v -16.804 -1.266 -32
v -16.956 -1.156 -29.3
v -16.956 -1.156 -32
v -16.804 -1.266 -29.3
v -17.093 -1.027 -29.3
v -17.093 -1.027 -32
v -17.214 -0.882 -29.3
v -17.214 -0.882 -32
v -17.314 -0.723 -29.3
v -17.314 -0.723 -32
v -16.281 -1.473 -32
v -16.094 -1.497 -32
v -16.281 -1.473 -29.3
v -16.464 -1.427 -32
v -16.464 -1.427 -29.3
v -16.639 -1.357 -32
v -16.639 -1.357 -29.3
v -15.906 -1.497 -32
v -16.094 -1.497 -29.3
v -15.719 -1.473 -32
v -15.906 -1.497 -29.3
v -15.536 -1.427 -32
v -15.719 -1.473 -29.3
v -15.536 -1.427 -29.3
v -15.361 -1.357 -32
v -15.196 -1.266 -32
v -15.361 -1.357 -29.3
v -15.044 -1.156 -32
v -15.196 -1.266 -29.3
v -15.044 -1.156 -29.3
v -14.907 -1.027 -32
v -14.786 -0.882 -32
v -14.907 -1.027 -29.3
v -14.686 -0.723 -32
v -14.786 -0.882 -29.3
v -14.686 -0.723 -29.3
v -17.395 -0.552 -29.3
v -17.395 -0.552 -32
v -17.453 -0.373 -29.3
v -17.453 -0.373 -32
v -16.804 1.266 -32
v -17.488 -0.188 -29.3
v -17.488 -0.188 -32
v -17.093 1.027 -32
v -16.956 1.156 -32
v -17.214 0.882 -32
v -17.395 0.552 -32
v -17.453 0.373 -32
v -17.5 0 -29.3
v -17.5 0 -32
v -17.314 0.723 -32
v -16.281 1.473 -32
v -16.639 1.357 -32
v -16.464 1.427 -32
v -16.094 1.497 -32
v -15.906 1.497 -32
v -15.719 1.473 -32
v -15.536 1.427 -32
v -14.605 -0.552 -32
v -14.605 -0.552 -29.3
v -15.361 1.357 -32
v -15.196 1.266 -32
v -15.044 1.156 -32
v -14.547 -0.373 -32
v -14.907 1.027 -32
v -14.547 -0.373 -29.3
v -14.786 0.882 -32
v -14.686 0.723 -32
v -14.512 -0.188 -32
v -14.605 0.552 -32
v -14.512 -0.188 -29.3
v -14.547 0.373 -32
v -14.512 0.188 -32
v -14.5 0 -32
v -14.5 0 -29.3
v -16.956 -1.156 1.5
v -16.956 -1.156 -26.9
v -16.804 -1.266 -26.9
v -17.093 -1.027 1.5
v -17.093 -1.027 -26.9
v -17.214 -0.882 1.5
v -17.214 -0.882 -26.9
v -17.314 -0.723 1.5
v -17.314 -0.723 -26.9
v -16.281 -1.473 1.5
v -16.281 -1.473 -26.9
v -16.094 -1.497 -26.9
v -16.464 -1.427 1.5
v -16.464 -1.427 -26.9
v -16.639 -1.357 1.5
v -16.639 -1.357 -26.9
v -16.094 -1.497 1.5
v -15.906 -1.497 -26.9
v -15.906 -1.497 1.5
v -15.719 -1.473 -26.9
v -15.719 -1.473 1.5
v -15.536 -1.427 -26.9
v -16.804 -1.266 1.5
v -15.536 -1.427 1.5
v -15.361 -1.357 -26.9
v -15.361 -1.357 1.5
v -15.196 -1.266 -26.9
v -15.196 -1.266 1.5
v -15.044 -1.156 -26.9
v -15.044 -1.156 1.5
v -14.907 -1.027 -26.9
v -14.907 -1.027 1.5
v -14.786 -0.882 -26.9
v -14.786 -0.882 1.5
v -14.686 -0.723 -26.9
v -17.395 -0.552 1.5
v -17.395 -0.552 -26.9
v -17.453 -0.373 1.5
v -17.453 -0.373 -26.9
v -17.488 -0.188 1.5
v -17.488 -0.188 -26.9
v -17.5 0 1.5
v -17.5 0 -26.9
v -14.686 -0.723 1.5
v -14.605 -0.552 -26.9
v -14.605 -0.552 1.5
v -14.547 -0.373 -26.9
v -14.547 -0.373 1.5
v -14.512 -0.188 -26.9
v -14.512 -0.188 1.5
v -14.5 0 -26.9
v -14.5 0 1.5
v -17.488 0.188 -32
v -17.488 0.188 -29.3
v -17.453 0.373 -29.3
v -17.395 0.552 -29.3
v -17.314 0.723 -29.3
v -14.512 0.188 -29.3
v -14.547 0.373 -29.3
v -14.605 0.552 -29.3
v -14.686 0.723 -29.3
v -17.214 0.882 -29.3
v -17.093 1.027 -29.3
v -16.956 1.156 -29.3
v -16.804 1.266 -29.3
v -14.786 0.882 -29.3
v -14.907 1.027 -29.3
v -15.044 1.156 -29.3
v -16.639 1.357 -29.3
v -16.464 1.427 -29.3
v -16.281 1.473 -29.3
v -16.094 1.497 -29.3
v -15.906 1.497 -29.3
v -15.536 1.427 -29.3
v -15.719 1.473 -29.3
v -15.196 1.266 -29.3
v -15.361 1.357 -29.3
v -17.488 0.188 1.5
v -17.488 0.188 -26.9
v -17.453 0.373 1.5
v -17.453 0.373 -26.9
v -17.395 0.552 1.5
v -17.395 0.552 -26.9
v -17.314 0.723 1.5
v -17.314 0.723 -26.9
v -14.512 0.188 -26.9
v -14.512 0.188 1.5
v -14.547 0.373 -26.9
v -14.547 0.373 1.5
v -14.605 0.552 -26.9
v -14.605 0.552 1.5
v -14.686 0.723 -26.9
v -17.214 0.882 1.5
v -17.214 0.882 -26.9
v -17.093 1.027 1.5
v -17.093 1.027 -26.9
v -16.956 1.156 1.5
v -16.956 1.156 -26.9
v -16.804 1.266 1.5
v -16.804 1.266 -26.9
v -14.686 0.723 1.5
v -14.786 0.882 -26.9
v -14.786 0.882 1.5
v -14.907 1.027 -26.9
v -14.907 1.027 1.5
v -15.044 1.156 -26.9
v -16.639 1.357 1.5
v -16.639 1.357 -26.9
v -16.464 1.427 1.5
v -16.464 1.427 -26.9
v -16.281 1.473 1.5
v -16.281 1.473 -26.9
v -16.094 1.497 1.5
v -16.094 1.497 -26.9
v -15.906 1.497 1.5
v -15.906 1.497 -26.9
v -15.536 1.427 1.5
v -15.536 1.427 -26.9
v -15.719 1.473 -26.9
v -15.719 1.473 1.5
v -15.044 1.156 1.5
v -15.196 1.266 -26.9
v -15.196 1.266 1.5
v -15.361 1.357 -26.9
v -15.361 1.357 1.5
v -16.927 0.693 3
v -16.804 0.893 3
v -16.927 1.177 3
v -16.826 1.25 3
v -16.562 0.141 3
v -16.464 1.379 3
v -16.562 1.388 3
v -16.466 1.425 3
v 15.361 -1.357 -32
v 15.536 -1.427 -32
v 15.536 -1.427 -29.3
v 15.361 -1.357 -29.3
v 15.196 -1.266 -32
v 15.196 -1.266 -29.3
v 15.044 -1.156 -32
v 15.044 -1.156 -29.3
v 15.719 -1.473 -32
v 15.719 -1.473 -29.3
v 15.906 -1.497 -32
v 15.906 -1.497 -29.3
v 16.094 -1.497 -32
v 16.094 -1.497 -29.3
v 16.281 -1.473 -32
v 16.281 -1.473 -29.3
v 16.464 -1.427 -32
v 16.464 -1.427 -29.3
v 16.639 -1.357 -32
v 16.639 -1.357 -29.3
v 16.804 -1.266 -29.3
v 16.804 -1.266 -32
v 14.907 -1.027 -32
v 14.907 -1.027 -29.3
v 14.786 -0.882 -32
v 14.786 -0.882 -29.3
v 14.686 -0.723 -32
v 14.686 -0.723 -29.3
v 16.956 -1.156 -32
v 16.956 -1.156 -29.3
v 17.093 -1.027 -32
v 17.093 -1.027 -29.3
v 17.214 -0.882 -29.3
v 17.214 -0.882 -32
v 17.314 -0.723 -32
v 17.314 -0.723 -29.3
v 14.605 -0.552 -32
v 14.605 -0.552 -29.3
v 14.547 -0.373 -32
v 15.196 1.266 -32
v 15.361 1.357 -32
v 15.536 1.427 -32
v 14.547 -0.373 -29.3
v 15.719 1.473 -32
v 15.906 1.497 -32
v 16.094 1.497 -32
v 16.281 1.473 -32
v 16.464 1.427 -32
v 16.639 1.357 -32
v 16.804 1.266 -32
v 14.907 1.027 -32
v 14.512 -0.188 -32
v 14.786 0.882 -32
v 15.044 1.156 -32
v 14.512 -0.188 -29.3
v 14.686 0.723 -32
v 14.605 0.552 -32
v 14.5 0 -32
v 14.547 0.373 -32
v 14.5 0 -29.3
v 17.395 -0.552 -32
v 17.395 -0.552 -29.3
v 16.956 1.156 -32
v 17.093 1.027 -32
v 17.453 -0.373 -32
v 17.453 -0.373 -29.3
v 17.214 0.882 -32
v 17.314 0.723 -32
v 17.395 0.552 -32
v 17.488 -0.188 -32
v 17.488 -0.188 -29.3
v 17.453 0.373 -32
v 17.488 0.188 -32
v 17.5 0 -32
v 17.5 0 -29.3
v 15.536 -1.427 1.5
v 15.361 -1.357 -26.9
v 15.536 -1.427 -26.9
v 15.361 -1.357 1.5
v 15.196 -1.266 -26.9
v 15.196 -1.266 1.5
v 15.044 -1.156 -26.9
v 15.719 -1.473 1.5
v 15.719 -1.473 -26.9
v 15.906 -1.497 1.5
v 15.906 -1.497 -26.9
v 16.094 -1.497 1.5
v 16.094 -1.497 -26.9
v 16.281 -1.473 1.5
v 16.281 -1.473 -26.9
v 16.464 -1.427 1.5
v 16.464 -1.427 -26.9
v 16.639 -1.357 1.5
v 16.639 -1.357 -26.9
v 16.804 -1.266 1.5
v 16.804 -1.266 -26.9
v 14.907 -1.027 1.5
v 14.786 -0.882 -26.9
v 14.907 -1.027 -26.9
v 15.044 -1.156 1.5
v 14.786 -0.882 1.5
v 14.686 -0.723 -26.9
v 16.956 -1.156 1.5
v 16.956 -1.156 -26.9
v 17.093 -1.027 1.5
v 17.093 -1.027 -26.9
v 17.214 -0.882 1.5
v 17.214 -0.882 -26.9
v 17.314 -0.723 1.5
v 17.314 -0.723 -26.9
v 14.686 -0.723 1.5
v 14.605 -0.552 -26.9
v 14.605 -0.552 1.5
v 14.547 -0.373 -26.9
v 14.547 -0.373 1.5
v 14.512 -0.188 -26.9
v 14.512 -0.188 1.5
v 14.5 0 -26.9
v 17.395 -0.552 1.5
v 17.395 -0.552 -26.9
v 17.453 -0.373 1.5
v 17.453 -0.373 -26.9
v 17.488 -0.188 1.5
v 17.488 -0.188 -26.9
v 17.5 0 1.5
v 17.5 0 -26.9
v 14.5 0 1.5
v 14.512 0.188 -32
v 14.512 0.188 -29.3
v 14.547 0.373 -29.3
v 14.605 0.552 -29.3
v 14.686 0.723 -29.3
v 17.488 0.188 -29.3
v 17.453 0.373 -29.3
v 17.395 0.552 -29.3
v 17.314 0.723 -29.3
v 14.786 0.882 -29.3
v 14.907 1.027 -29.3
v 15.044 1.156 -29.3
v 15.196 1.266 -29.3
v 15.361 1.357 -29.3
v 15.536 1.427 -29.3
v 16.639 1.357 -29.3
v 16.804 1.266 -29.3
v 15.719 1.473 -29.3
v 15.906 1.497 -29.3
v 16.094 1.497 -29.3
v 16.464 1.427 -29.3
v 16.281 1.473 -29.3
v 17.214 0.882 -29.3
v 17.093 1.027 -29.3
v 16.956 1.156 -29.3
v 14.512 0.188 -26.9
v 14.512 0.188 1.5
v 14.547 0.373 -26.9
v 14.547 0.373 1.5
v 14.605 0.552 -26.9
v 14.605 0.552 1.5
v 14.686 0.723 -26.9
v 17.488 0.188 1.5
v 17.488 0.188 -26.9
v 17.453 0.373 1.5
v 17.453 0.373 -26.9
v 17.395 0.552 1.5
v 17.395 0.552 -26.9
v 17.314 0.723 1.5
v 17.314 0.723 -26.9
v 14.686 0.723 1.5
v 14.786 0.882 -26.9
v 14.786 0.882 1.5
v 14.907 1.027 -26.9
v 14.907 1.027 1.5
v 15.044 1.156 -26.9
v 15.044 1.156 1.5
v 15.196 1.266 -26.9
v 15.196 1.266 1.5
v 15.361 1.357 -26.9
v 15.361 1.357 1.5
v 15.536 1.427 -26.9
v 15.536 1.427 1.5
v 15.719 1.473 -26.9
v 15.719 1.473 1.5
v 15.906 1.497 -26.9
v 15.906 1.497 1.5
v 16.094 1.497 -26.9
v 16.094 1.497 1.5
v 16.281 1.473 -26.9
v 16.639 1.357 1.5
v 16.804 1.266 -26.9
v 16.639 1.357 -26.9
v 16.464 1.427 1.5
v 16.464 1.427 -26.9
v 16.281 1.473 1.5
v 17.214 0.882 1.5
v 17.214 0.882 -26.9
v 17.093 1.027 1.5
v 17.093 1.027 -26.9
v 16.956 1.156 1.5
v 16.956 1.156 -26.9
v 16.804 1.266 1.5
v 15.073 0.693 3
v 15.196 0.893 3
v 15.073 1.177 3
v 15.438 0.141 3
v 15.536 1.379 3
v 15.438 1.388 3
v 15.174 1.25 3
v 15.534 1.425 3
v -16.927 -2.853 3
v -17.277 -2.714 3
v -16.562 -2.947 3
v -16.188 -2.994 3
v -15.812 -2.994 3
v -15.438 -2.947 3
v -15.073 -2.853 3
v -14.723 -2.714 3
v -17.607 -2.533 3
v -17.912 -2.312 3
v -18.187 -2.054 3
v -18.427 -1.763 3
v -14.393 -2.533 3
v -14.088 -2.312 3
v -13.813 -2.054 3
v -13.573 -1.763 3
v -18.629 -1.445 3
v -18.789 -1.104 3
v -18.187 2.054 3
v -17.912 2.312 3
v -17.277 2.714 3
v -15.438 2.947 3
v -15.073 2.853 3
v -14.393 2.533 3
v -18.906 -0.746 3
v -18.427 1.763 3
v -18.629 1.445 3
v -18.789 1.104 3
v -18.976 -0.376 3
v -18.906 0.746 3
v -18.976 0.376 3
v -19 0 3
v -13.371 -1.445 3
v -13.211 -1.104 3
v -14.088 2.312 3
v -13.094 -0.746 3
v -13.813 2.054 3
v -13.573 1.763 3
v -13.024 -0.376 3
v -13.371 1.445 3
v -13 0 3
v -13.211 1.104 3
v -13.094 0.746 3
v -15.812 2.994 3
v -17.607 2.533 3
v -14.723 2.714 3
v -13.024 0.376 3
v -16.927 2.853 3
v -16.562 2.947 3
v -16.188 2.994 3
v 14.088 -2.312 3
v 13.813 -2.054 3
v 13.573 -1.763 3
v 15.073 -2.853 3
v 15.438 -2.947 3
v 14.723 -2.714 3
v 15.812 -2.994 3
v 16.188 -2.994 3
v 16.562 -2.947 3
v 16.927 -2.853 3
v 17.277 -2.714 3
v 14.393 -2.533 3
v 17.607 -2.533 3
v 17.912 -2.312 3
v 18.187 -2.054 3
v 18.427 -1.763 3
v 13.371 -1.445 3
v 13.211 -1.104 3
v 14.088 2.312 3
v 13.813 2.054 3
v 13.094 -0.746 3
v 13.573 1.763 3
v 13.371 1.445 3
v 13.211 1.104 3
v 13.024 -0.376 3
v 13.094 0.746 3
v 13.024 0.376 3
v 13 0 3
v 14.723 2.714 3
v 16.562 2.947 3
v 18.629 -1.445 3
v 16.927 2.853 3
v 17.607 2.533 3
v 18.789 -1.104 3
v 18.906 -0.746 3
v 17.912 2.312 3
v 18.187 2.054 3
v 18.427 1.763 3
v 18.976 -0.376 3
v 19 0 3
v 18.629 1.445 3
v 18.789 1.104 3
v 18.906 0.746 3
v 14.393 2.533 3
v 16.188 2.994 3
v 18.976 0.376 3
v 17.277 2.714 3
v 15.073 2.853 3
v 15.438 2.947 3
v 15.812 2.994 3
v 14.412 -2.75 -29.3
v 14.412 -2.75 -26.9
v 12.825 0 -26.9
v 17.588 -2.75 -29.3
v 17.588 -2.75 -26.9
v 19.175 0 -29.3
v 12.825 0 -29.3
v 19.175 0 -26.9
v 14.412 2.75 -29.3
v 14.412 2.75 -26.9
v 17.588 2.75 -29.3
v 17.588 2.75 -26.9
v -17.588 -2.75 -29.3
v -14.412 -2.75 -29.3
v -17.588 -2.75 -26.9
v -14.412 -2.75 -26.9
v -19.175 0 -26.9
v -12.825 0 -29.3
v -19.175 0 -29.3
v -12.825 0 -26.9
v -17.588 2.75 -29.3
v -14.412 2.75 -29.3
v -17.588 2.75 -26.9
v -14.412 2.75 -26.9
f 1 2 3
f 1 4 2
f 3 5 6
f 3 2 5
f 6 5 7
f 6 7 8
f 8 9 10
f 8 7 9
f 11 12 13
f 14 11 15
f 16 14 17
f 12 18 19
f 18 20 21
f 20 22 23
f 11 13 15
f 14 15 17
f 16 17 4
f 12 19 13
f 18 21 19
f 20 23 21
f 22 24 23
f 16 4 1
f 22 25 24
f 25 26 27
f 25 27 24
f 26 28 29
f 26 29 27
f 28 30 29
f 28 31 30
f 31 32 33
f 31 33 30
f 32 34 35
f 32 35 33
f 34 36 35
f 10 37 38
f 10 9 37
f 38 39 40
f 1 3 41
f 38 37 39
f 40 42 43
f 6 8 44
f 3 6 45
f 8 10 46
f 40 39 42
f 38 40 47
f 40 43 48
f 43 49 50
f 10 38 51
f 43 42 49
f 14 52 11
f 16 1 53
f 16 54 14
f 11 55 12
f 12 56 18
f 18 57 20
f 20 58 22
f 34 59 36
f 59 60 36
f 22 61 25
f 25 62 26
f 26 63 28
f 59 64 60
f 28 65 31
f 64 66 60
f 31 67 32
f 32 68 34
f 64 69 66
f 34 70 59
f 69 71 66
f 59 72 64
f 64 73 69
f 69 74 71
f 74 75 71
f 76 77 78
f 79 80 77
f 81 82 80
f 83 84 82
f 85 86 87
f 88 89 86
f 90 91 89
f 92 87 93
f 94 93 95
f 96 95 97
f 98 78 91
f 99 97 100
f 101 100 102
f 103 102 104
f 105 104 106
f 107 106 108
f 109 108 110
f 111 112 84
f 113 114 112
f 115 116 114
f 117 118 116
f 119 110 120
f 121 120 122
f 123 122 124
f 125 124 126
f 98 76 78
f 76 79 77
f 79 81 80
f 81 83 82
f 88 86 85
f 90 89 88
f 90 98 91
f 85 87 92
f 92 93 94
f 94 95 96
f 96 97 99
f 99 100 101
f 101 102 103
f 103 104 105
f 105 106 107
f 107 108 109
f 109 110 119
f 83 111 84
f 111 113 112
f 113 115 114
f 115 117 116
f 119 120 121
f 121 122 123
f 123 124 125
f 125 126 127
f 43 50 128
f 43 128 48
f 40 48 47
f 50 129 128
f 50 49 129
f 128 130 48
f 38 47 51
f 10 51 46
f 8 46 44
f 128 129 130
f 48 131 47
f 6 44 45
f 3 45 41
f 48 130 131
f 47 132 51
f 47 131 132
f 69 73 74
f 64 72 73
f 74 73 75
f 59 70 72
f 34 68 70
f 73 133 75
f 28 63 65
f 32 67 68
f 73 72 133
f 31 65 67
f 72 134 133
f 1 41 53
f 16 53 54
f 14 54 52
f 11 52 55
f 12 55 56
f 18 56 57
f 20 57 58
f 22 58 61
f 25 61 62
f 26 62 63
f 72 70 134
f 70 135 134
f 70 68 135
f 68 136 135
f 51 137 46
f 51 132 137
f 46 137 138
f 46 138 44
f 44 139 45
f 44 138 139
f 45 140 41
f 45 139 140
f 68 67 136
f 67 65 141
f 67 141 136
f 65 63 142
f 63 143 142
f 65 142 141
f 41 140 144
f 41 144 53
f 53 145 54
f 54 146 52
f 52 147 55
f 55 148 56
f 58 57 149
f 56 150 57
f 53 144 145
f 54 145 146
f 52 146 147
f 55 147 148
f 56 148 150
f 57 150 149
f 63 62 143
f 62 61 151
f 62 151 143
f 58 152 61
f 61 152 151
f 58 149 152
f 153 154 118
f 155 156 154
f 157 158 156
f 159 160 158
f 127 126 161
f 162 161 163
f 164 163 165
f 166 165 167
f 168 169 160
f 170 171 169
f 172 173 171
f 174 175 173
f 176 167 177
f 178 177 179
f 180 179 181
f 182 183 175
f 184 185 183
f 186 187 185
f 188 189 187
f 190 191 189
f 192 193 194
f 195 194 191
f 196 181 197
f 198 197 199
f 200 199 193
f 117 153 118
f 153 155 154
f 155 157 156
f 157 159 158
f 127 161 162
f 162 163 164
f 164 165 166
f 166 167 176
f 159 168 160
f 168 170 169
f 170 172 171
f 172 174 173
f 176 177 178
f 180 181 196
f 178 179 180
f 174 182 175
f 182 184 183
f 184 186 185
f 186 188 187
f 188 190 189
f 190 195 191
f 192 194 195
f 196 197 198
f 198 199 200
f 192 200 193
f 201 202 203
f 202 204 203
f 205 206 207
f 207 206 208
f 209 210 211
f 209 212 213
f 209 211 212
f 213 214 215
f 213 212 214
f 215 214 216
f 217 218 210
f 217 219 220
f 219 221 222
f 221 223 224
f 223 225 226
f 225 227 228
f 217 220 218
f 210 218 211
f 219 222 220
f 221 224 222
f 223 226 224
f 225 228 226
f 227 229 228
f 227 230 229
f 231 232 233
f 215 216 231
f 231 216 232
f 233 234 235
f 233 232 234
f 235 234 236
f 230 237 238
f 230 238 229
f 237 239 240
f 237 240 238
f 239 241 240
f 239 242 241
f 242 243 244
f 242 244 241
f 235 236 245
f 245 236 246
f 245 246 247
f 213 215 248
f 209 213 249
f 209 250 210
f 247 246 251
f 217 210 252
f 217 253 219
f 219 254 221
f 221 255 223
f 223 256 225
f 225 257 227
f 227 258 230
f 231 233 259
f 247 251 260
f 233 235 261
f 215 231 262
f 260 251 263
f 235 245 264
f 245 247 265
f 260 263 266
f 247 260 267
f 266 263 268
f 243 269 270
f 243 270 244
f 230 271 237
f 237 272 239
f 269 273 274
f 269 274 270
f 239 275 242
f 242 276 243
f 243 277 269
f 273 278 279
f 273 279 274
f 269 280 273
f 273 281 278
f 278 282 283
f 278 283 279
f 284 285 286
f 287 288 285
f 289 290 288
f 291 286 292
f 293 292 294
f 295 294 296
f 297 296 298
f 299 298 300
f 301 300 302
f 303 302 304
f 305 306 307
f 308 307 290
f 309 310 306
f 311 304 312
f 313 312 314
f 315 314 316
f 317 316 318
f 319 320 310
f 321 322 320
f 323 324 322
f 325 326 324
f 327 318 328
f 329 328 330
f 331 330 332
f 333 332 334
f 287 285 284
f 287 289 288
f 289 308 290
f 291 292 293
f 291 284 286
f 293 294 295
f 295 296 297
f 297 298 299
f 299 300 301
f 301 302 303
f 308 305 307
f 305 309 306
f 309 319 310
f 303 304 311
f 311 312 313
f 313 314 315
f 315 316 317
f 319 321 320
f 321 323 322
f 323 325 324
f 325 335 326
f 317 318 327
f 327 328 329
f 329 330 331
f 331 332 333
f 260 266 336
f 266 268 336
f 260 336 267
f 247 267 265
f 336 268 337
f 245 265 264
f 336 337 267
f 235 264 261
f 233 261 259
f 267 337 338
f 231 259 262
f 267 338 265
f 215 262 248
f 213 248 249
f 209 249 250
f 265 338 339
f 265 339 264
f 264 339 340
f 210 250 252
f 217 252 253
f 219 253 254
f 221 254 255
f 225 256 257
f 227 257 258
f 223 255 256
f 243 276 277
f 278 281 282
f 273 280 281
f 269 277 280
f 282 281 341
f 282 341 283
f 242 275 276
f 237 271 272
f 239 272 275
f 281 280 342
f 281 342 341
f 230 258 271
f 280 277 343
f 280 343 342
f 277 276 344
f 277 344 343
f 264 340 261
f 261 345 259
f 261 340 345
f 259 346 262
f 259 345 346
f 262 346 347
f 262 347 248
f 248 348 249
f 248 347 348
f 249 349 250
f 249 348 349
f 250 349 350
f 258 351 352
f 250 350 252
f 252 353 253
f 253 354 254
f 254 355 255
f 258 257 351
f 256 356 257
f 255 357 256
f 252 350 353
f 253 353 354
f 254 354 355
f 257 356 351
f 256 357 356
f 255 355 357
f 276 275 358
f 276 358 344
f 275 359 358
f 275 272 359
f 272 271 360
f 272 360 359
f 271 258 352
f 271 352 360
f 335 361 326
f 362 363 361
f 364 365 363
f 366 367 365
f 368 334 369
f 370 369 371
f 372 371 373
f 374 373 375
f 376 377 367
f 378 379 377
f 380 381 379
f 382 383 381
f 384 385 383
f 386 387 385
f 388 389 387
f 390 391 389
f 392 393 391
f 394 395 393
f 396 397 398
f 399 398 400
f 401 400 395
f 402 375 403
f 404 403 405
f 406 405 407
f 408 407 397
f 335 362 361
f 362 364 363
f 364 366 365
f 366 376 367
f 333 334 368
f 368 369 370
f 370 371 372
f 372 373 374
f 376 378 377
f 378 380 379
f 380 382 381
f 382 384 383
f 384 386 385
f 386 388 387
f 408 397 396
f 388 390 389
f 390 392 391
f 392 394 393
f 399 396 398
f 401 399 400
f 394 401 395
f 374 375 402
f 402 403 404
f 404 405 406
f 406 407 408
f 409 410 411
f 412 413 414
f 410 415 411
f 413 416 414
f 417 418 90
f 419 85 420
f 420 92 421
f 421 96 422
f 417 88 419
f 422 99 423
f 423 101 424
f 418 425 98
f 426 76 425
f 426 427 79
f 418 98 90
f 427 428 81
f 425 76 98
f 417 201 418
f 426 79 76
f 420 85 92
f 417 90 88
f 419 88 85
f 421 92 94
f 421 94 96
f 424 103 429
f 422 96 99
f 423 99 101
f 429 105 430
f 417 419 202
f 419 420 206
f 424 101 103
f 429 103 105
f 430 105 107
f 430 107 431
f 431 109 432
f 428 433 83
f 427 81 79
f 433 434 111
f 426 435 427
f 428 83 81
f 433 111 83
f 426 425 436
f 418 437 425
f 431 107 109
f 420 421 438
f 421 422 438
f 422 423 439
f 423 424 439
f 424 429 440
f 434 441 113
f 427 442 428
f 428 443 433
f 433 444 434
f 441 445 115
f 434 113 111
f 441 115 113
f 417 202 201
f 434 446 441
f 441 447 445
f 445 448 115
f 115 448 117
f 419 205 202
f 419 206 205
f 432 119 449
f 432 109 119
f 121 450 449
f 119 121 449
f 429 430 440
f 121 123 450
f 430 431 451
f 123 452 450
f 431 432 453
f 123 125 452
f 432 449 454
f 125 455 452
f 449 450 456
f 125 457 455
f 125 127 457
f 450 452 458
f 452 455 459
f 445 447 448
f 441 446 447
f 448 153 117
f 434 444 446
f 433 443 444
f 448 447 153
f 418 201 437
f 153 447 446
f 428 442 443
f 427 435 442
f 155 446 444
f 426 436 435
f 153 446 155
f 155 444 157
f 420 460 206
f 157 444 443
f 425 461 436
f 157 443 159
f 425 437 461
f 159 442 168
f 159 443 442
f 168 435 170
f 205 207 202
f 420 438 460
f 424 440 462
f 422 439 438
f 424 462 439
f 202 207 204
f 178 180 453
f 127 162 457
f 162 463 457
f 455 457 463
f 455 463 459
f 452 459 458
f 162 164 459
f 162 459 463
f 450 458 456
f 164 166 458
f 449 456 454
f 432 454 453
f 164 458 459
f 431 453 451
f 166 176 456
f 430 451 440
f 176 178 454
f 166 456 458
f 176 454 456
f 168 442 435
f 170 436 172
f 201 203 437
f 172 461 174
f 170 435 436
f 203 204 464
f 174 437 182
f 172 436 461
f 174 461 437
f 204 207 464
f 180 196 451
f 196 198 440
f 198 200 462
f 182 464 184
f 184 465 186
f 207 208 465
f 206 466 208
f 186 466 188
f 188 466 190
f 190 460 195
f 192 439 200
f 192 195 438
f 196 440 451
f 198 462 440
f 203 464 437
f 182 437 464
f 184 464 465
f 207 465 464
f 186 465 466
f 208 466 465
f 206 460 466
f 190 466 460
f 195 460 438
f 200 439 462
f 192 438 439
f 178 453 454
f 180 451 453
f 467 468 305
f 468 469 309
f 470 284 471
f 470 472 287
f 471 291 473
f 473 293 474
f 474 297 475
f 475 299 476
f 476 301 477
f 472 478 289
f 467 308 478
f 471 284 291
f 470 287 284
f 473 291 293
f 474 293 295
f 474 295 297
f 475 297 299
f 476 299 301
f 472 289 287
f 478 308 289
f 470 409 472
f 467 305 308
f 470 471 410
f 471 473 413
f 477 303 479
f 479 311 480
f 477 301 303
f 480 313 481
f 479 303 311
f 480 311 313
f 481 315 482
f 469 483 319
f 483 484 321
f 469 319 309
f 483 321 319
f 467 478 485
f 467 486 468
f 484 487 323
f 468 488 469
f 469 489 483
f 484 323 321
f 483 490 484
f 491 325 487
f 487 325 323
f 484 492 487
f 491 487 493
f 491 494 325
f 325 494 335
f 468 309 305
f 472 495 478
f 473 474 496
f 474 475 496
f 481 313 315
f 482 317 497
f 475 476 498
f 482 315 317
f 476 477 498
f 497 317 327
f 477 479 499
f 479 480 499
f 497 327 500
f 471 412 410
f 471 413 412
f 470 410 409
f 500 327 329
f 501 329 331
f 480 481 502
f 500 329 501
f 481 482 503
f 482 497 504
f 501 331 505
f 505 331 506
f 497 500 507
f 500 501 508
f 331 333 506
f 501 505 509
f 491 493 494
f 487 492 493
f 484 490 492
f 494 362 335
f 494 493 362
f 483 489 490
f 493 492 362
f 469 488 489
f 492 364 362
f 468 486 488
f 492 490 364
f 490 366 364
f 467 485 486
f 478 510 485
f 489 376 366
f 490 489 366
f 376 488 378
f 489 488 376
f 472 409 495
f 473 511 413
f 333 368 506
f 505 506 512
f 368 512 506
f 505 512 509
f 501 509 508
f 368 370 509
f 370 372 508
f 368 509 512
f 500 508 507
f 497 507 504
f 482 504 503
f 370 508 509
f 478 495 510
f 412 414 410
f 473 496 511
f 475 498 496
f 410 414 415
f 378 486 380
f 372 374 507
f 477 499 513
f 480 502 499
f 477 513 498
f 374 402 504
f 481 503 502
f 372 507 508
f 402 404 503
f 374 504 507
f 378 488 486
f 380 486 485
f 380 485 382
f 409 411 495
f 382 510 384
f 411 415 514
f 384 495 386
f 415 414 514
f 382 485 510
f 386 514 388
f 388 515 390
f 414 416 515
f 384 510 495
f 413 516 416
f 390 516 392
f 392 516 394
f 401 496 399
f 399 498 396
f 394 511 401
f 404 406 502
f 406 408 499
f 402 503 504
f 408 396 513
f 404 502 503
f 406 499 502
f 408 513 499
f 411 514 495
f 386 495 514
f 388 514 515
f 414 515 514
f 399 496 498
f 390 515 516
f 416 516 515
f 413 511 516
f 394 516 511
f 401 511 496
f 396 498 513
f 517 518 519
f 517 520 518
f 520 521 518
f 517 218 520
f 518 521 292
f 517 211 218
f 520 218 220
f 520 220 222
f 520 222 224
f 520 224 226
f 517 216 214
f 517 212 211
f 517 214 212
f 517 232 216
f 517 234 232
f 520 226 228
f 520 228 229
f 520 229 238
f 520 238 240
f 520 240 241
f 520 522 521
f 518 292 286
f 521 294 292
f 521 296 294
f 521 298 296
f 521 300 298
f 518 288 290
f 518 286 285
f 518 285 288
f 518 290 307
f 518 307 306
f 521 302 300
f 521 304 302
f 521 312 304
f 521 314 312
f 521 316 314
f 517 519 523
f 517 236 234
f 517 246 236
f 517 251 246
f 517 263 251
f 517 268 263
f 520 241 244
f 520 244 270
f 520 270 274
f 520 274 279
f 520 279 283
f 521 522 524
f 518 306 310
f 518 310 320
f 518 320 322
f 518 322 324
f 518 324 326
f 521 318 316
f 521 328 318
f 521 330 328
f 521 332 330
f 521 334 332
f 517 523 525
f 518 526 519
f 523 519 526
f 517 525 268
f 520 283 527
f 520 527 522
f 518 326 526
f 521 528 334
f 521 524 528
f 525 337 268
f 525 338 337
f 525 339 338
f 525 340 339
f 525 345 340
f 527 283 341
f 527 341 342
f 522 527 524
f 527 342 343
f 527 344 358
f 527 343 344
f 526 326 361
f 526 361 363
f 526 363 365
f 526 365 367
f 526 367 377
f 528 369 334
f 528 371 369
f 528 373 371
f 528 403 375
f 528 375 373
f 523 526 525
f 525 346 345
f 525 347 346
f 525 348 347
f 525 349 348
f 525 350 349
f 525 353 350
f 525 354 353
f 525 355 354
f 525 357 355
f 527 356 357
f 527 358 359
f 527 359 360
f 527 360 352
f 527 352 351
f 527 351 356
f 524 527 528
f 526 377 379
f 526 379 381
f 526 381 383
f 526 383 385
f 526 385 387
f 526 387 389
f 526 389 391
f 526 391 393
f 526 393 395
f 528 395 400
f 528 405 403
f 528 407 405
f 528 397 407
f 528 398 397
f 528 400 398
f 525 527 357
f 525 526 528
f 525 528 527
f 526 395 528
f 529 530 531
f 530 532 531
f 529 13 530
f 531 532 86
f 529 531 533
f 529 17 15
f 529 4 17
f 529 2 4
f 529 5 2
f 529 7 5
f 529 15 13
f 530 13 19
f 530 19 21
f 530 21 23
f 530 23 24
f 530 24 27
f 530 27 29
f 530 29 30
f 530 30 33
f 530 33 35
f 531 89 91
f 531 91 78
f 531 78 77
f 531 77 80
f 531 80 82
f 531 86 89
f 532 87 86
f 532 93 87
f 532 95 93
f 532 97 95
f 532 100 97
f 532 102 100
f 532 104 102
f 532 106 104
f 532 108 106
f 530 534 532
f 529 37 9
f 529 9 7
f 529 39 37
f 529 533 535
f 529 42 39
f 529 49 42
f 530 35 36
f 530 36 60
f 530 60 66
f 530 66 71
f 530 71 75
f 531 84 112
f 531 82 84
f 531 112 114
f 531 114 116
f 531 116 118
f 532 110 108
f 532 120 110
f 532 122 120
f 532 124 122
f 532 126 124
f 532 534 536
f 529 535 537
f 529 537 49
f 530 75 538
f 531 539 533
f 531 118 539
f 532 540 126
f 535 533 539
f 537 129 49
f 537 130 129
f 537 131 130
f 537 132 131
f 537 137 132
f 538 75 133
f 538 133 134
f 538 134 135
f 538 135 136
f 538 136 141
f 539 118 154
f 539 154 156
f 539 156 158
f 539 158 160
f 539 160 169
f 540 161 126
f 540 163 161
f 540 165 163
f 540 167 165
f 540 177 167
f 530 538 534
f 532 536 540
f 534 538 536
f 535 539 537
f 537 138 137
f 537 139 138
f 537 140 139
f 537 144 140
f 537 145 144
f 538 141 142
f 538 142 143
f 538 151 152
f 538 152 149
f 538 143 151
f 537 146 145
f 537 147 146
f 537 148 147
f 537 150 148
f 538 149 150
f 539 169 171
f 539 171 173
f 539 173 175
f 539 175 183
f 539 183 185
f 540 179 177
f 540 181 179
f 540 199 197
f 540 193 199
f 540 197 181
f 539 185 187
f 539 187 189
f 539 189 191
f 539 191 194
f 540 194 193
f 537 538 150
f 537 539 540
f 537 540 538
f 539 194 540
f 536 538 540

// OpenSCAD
$fn = 50;

difference() {
	union() {
		translate(v = [-16, 0, 3]) {
			rotate(a = [0, 0, 0]) {
				difference() {
					union() {
						translate(v = [0, 0, -35.0]) {
							cylinder(h = 35, r = 1.5);
						}
						translate(v = [0, 0, -1.5]) {
							cylinder(h = 1.5, r1 = 1.5, r2 = 3);
						}
					}
					union();
				}
			}
		}
		translate(v = [-16, 0, -29.3]) {
			rotate(a = [0, 0, 0]) {
				difference() {
					union() {
						linear_extrude(height = 2.4) {
							polygon(points = [[3.1754264805429417, 0.0], [1.5877132402714713, 2.75], [-1.5877132402714702, 2.7500000000000004], [-3.1754264805429417, 3.888775875324659e-16], [-1.5877132402714722, -2.7499999999999996], [1.5877132402714687, -2.7500000000000013]]);
						}
					}
					union();
				}
			}
		}
		translate(v = [16, 0, 3]) {
			rotate(a = [0, 0, 0]) {
				difference() {
					union() {
						translate(v = [0, 0, -35.0]) {
							cylinder(h = 35, r = 1.5);
						}
						translate(v = [0, 0, -1.5]) {
							cylinder(h = 1.5, r1 = 1.5, r2 = 3);
						}
					}
					union();
				}
			}
		}
		translate(v = [16, 0, -29.3]) {
			rotate(a = [0, 0, 0]) {
				difference() {
					union() {
						linear_extrude(height = 2.4) {
							polygon(points = [[3.1754264805429417, 0.0], [1.5877132402714713, 2.75], [-1.5877132402714702, 2.7500000000000004], [-3.1754264805429417, 3.888775875324659e-16], [-1.5877132402714722, -2.7499999999999996], [1.5877132402714687, -2.7500000000000013]]);
						}
					}
					union();
				}
			}
		}
	}
	union();
}
